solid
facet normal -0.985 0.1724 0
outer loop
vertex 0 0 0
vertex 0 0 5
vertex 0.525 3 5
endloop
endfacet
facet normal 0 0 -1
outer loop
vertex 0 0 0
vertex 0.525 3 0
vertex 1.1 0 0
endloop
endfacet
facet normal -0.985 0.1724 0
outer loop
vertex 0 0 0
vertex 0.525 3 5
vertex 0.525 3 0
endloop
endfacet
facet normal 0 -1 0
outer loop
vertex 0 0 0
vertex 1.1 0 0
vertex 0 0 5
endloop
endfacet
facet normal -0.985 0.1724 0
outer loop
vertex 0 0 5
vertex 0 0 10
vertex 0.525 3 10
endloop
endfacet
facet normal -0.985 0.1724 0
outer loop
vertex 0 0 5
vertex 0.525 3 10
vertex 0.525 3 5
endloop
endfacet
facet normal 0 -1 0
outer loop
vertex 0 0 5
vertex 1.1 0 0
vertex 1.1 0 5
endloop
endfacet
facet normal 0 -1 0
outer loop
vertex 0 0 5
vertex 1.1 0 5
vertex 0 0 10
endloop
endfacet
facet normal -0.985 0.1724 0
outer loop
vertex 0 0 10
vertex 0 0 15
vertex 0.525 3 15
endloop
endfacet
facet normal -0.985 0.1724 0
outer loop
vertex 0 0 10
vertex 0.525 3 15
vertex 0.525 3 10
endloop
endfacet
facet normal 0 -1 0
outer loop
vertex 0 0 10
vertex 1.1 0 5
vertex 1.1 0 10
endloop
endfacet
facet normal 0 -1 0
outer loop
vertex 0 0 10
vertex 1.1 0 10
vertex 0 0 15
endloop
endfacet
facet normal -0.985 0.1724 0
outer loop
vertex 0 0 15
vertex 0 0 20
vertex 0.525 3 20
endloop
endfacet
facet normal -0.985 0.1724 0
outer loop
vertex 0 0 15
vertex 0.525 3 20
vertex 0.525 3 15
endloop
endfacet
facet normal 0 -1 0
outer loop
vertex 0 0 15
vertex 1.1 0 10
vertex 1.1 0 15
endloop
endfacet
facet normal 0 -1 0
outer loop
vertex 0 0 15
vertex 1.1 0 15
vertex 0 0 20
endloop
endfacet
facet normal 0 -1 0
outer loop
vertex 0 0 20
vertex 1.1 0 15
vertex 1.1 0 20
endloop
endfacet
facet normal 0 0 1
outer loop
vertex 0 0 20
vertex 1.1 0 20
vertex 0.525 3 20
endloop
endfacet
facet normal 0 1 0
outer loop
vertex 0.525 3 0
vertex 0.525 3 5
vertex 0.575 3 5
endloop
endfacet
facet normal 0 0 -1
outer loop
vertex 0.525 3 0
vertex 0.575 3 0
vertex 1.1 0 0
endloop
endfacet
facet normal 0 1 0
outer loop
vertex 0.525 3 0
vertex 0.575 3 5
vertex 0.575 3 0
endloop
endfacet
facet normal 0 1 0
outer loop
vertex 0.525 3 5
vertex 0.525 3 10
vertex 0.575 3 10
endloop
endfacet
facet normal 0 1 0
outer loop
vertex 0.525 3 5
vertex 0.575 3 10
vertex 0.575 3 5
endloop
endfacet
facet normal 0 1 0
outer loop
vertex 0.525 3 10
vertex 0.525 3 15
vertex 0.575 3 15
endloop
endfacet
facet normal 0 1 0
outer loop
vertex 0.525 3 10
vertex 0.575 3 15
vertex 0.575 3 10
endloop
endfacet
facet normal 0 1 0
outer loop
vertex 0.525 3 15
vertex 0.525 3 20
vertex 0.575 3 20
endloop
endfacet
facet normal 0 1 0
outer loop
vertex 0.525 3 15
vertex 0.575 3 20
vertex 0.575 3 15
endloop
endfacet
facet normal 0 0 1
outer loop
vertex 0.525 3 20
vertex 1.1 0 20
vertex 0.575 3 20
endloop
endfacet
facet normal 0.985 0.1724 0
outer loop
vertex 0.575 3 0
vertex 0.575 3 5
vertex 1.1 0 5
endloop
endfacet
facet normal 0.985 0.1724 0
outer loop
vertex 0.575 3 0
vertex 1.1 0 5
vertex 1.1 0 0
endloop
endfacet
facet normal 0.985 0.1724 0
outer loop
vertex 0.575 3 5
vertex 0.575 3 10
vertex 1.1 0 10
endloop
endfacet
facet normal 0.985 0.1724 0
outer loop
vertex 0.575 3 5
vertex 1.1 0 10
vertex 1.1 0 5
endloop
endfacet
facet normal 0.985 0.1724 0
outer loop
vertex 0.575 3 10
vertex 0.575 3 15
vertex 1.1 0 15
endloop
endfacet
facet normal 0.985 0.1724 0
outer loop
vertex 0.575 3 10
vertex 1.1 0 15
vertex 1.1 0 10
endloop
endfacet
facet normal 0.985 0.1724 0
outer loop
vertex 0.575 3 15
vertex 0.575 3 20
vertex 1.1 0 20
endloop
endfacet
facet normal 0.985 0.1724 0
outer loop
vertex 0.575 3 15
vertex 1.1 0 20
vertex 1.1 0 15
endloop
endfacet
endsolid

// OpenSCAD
// Start: lazy_union
default_5_default_5();
// End: lazy_union

// Modules.

// 'PartMaterial undef-default - default 5.0'
module default_5_default_5() {
  // 'None : _combine_solids_and_holes'
  union() {
    // 'default : _combine_solids_and_holes'
    union() {
      // 'cage'
      %color(c=[0.0, 1.0, 0.35, 0.4]) {
        // 'cage : _combine_solids_and_holes'
        union() {
          // 'cage'
          cube(size=[1.1, 3.0, 20.0]);
        }
      }
      // 'slit'
      multmatrix(m=[[1.0, 0.0, 0.0, 0.55], [0.0, 1.0, 0.0, 0.0], [0.0, 0.0, 1.0, 0.0], [0.0, 0.0, 0.0, 1.0]]) {
        // 'slit'
        color(c=[1.0, 0.0, 0.0, 1.0]) {
          // 'slit : _combine_solids_and_holes'
          union() {
            // 'slit'
            linear_extrude(height=20.0, twist=0.0, slices=4, scale=[1.0, 1.0]) {
              polygon(points=[[0.0, 0.0], [-0.55, 0.0], [-0.025, 3.0], [0.025, 3.0], [0.55, 0.0]]);
            }
          }
        }
      }
    }
  }
} // end module default_5_default_5
